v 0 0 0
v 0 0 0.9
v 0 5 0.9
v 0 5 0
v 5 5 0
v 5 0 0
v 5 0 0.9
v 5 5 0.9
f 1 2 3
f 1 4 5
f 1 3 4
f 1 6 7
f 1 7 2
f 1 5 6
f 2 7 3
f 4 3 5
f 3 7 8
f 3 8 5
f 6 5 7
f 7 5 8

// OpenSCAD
/* Warning, this is a very basic generator with a lot of approximation 
input data : [VFBGA, 5HX, 5x5x0.9mm, 61, , A, C04-00422A]
generated by com.zoubworld.electronics.cad.model3d.Basic
Date : Sun Feb 15 10:50:48 CET 2026
*/

//body
color("black")
translate([0,0,0])
cube([5.0,5.0,0.9], center=false);
